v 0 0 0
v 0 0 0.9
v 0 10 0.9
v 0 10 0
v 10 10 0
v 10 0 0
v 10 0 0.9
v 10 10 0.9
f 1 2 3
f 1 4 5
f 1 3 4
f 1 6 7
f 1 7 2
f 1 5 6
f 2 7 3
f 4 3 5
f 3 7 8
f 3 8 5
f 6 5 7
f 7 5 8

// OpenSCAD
/* Warning, this is a very basic generator with a lot of approximation 
input data : [VQFN, MNA, 10x10x0.9mm, 72, , A, C04-01093A]
generated by com.zoubworld.electronics.cad.model3d.Basic
Date : Sun Feb 15 10:50:49 CET 2026
*/

//body
color("black")
translate([0,0,0])
cube([10.0,10.0,0.9], center=false);
